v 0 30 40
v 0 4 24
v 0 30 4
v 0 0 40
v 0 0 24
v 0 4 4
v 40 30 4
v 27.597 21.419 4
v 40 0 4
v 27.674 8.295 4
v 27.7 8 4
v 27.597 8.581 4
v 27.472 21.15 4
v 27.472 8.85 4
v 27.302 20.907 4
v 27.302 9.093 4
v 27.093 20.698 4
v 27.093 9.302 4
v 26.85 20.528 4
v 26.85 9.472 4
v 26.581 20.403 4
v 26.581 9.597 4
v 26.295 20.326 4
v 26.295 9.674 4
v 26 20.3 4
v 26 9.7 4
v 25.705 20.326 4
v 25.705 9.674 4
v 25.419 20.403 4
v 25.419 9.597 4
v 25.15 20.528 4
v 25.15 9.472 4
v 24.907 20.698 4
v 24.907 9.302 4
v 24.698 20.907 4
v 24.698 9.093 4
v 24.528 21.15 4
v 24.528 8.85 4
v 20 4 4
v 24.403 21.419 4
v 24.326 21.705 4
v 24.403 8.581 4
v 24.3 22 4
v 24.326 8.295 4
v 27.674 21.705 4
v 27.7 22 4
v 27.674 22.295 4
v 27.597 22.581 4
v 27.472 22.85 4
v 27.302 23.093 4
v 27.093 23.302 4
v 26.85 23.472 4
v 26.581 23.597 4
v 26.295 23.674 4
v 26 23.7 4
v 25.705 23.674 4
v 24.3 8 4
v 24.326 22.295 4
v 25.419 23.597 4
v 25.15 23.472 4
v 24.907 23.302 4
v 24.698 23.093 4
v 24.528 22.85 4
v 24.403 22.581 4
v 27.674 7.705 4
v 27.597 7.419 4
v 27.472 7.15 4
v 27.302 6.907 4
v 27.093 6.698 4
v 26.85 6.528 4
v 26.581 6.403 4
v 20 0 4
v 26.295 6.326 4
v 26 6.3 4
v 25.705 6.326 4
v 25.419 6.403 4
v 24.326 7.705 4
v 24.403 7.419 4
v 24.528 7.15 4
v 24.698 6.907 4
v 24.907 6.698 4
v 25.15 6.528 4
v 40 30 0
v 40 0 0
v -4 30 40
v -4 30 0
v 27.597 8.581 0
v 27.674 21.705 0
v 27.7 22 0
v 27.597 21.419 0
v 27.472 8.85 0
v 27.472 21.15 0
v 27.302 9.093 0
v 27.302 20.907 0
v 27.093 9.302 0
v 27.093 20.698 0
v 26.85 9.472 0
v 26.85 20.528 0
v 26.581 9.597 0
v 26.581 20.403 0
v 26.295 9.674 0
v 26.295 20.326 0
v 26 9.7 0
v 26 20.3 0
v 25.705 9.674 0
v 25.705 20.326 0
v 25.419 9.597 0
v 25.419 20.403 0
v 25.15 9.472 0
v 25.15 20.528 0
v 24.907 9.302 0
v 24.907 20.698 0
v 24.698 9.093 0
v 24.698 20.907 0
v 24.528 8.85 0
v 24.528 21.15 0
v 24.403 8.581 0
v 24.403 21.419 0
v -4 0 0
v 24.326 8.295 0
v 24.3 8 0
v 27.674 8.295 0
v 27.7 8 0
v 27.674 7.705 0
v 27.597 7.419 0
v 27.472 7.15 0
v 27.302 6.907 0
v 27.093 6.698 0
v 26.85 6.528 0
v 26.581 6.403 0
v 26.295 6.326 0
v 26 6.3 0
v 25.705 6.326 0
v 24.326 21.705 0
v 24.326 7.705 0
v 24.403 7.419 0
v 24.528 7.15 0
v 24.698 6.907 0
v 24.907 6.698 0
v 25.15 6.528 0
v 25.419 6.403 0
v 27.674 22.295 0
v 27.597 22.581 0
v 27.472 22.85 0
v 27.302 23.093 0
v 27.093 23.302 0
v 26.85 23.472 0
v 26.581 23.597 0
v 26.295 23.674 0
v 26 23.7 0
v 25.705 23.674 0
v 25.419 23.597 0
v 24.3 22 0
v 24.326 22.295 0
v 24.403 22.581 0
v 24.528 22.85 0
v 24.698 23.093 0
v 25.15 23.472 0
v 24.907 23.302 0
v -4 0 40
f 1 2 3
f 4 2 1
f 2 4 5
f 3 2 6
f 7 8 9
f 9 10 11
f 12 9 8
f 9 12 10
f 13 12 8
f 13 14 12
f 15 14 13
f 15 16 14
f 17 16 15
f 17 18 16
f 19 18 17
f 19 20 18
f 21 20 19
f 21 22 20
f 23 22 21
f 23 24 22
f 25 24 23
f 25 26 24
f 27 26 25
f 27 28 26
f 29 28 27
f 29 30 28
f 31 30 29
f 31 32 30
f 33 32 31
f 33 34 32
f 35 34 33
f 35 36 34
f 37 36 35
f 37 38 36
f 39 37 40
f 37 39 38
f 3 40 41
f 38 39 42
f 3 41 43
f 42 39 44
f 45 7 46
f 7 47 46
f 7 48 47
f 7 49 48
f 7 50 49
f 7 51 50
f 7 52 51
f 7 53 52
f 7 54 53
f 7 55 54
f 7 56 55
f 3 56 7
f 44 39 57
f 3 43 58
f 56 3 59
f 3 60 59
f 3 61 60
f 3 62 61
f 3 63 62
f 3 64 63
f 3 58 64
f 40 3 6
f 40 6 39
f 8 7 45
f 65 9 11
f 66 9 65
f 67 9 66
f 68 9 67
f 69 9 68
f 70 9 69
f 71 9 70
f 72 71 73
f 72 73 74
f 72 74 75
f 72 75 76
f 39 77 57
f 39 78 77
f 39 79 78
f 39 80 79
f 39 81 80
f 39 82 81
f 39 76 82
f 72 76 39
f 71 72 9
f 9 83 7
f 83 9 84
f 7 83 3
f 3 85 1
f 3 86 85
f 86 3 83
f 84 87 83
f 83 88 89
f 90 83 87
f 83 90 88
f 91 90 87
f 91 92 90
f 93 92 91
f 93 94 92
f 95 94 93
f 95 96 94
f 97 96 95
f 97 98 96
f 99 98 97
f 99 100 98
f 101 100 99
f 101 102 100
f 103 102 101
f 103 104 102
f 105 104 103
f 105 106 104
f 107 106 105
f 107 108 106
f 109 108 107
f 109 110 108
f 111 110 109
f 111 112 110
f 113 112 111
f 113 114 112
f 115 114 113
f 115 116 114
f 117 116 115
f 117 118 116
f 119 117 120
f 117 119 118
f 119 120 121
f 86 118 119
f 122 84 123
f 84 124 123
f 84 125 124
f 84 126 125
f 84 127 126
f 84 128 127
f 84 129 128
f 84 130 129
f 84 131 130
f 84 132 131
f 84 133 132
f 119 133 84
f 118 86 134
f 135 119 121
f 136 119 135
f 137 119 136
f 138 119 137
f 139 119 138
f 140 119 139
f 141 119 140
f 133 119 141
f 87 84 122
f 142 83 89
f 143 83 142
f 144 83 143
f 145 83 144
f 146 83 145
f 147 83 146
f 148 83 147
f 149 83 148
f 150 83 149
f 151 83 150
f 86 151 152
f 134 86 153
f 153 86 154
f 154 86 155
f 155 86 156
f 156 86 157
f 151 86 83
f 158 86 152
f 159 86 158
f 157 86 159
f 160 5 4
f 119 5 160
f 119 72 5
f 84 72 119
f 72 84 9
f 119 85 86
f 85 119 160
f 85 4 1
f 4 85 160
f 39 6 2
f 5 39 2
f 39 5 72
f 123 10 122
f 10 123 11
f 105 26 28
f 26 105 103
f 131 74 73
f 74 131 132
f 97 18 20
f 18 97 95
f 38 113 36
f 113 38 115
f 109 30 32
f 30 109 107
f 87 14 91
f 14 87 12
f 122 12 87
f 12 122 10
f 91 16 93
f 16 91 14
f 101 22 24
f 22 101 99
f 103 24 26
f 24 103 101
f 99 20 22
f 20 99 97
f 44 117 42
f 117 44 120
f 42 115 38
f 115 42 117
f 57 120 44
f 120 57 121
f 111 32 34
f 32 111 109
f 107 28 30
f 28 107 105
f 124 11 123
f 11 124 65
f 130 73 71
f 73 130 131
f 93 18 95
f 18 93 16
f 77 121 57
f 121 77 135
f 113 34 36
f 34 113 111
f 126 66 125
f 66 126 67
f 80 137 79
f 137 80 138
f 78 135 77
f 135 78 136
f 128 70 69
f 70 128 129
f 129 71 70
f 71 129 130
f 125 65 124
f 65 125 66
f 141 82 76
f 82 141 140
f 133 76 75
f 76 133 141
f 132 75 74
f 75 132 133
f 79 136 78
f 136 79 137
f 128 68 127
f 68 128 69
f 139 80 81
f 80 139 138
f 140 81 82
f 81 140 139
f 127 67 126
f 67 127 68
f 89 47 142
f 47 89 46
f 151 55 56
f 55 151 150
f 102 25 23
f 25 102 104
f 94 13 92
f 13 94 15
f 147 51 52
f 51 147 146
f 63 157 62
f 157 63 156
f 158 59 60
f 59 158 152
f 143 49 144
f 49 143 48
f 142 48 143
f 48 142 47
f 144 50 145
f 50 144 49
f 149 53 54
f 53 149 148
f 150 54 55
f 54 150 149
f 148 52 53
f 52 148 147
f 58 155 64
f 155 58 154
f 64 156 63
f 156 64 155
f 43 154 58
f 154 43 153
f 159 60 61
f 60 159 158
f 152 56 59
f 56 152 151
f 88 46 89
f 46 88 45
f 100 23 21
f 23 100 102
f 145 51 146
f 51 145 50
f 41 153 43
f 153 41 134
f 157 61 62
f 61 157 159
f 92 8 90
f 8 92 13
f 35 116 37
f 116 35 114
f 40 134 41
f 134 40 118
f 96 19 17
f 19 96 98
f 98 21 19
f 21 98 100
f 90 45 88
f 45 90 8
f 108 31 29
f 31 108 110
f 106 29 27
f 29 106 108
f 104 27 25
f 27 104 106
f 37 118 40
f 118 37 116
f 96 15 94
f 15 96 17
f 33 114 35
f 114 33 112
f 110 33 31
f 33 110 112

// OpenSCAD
// Checkpoint 1c - L bracket, two holes per face, gusset at the corner.
$fn = 36;
T = 4;
module face(l, w) { cube([l, w, T], center = false); }
difference() {
  union() {
    face(40, 30);
    translate([0, 0, 0]) rotate([0, -90, 0]) face(40, 30);
    /*
     * Gusset, so the corner is not a sharp unsupported joint.
     *
     * The first version had this translated to z=-40 and pointing at +z, which
     * left it floating in space away from a corner that stayed bare. The
     * review caught it before I did.
     *
     * rotate([90,0,0]) maps (x,y,z) -> (x,-z,y). The two faces run along +x
     * and +z, so the triangle is authored in +x/+y and lands spanning +x/+z,
     * then is shifted into y = 0..T to sit flush against them. Checked by
     * bounding box, not by eye: an earlier attempt pointed it at -z and only
     * the bounds showed it.
     */
    translate([0, T, 0])
      rotate([90, 0, 0])
        linear_extrude(T)
          polygon([[0, 0], [24, 0], [0, 24]]);
  }
  for (y = [8, 22]) translate([26, y, -1]) cylinder(h = T + 2, r = 1.7);
  for (y = [8, 22]) translate([-1, y, -26]) rotate([0, 90, 0]) cylinder(h = T + 2, r = 1.7);
}
